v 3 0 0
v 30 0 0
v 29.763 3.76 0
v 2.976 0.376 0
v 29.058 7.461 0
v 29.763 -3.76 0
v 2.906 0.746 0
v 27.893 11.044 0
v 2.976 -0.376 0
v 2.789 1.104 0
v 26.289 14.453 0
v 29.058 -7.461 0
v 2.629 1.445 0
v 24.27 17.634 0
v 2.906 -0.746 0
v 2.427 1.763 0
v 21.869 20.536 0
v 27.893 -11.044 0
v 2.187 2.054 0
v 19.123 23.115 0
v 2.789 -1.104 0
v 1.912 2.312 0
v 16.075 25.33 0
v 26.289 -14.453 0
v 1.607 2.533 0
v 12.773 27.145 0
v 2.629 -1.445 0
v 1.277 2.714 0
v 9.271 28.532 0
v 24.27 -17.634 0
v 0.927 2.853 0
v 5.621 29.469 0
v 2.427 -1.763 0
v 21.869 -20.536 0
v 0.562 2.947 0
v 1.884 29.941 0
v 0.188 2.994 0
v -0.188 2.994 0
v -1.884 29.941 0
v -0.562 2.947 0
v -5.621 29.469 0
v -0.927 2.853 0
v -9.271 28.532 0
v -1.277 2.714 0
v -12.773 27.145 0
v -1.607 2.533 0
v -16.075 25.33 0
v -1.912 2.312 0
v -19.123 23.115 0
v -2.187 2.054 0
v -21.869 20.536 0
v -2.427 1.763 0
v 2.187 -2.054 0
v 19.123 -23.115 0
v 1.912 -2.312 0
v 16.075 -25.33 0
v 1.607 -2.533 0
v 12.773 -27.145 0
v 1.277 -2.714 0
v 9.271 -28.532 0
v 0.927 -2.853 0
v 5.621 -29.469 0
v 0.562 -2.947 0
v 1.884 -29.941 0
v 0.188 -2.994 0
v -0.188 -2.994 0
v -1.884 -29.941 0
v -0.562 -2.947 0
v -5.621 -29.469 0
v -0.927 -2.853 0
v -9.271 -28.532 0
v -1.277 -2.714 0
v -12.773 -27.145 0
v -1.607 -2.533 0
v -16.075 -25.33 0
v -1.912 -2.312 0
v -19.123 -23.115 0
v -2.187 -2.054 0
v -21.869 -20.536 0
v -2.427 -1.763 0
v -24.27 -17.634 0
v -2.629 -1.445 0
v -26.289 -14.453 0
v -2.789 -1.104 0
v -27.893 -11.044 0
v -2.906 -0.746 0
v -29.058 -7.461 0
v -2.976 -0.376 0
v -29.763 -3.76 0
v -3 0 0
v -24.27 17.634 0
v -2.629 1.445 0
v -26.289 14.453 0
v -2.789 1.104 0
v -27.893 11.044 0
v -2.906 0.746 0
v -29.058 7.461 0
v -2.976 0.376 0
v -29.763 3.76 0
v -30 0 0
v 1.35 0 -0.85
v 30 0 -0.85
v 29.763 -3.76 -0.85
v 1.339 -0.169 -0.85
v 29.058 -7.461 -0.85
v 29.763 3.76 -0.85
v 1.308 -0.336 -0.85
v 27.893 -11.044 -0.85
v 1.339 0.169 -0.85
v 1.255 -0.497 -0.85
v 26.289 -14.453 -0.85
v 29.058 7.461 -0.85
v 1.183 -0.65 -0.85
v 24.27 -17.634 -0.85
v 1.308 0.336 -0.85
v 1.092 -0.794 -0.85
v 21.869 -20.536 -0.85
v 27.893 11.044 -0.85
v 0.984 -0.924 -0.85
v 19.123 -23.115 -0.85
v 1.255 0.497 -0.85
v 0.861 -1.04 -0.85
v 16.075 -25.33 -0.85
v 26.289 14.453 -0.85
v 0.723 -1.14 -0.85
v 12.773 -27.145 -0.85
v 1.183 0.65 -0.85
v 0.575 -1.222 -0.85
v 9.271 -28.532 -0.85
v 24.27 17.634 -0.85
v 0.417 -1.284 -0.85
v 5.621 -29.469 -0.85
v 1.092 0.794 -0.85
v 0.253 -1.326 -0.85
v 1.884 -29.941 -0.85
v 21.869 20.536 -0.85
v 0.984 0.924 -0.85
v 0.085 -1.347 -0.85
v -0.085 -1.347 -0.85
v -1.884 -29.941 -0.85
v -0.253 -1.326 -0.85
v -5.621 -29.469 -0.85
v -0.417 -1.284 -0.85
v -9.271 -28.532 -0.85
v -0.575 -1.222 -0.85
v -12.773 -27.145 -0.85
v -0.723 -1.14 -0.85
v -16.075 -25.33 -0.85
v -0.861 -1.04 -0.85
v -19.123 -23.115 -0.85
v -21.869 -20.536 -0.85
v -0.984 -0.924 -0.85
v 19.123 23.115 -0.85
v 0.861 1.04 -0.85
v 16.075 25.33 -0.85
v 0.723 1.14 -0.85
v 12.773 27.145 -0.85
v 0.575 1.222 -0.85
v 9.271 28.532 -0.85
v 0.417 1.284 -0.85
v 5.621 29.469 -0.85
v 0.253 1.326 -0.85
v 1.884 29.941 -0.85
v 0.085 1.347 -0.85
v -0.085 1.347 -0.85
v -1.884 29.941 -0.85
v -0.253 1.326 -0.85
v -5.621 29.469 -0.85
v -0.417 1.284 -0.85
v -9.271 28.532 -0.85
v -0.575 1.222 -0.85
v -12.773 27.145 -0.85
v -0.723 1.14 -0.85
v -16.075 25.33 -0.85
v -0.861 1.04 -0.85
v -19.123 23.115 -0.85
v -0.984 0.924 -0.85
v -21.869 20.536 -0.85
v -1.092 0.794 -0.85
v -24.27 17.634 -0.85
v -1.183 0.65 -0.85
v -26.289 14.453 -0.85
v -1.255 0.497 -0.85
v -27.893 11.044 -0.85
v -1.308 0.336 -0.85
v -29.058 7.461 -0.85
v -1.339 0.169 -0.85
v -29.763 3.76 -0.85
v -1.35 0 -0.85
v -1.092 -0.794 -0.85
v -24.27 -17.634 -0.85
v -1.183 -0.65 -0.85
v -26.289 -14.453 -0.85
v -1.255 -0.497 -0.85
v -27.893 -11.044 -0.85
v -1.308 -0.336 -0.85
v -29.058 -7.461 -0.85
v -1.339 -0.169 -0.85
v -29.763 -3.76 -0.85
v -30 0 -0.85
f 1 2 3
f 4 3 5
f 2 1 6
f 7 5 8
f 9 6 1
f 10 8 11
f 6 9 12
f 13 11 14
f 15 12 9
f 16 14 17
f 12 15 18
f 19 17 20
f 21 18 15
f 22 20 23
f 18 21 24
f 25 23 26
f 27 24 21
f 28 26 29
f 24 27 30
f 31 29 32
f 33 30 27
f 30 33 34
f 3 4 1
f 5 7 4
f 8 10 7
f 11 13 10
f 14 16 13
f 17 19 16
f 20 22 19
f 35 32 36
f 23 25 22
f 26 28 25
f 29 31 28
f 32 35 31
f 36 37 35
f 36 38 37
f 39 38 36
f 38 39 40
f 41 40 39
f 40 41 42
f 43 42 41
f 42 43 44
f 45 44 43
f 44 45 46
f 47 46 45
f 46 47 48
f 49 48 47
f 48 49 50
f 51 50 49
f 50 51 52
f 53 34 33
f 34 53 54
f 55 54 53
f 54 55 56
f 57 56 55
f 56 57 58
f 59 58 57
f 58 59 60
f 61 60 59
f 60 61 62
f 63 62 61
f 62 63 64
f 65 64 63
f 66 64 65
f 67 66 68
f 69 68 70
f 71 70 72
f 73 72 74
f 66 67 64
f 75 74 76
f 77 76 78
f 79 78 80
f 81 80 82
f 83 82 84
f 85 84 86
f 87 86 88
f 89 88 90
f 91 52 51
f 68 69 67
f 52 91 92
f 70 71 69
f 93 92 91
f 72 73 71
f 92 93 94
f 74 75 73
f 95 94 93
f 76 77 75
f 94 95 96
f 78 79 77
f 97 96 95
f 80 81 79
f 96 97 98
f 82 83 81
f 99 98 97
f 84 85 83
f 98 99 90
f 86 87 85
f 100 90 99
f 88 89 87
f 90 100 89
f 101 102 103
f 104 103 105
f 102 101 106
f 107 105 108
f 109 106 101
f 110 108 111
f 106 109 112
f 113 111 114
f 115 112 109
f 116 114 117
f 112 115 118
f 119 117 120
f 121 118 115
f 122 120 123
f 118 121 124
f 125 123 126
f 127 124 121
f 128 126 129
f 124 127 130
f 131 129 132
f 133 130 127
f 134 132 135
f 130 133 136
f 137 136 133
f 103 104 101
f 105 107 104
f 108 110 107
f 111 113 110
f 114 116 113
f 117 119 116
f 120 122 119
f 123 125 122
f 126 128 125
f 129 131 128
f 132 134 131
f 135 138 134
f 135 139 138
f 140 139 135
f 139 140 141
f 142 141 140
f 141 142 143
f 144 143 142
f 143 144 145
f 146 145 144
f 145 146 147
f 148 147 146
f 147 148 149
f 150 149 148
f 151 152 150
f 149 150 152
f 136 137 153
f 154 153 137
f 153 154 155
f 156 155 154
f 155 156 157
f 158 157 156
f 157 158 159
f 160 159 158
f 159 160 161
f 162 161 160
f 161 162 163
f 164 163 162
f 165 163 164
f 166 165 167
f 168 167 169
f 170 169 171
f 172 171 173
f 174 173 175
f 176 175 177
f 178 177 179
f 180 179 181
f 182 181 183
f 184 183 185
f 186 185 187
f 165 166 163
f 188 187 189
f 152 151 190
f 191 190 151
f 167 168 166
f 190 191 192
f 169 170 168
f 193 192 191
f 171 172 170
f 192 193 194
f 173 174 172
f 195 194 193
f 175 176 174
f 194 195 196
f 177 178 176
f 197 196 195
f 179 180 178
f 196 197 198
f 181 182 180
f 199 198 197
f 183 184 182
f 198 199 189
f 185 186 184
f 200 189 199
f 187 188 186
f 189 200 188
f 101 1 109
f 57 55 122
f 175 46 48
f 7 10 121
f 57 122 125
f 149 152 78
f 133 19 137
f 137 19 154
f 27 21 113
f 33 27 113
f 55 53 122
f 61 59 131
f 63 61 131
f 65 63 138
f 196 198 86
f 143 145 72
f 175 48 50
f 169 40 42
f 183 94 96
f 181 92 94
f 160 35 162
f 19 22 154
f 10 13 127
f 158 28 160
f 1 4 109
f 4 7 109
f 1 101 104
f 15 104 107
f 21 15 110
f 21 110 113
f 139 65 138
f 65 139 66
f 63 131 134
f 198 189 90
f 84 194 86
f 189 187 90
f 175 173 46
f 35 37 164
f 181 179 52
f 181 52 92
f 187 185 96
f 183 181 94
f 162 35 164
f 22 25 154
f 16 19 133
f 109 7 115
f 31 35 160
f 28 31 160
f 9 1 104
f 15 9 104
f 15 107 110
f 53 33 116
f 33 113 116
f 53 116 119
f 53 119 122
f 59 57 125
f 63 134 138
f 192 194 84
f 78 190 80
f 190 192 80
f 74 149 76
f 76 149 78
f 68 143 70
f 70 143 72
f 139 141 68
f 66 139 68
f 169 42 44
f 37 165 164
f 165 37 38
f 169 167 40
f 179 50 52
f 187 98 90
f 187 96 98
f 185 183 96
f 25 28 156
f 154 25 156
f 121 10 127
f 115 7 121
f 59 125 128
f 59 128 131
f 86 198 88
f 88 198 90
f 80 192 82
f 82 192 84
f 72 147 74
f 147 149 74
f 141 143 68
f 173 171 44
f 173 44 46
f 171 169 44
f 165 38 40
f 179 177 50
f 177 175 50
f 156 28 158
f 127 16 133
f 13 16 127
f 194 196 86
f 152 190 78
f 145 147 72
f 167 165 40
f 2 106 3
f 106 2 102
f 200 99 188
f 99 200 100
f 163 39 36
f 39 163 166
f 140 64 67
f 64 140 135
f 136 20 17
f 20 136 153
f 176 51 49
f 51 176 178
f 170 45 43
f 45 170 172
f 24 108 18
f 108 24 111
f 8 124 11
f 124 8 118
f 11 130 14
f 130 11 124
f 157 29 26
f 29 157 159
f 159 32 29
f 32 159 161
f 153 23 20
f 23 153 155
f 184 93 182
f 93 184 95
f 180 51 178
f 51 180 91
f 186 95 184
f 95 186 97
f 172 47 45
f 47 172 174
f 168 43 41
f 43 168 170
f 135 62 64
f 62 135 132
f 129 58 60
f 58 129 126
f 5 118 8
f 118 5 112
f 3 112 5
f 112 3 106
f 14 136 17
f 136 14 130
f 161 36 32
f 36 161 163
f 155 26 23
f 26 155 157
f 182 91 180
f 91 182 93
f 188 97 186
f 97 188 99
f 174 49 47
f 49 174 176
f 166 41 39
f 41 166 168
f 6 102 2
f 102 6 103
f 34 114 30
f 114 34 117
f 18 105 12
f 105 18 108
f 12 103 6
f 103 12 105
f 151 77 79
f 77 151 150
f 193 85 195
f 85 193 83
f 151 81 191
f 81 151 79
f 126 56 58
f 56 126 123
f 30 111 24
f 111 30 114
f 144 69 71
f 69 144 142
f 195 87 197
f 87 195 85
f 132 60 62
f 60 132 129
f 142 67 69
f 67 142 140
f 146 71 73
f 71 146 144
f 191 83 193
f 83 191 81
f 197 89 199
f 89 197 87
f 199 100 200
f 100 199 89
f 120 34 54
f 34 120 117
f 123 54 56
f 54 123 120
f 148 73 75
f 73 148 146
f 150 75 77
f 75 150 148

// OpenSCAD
$fn = 50;


difference() {
	union() {
		translate(v = [0, 0, -0.8500000000]) {
			cylinder(h = 0.8500000000, r = 30.0000000000);
		}
	}
	union() {
		translate(v = [0, 0, 0]) {
			rotate(a = [0, 0, 0]) {
				difference() {
					union() {
						#translate(v = [0, 0, -0.8500000000]) {
							cylinder(h = 0.8500000000, r = 1.0000000000);
						}
						#translate(v = [0, 0, -0.8500000000]) {
							cylinder(h = 0.8500000000, r1 = 1.3500000000, r2 = 3.0000000000);
						}
						#translate(v = [0, 0, -0.8500000000]) {
							cylinder(h = 0.8500000000, r = 1.3500000000);
						}
						#translate(v = [0, 0, -0.8500000000]) {
							cylinder(h = 0.8500000000, r = 1.0000000000);
						}
					}
					union();
				}
			}
		}
	}
}
